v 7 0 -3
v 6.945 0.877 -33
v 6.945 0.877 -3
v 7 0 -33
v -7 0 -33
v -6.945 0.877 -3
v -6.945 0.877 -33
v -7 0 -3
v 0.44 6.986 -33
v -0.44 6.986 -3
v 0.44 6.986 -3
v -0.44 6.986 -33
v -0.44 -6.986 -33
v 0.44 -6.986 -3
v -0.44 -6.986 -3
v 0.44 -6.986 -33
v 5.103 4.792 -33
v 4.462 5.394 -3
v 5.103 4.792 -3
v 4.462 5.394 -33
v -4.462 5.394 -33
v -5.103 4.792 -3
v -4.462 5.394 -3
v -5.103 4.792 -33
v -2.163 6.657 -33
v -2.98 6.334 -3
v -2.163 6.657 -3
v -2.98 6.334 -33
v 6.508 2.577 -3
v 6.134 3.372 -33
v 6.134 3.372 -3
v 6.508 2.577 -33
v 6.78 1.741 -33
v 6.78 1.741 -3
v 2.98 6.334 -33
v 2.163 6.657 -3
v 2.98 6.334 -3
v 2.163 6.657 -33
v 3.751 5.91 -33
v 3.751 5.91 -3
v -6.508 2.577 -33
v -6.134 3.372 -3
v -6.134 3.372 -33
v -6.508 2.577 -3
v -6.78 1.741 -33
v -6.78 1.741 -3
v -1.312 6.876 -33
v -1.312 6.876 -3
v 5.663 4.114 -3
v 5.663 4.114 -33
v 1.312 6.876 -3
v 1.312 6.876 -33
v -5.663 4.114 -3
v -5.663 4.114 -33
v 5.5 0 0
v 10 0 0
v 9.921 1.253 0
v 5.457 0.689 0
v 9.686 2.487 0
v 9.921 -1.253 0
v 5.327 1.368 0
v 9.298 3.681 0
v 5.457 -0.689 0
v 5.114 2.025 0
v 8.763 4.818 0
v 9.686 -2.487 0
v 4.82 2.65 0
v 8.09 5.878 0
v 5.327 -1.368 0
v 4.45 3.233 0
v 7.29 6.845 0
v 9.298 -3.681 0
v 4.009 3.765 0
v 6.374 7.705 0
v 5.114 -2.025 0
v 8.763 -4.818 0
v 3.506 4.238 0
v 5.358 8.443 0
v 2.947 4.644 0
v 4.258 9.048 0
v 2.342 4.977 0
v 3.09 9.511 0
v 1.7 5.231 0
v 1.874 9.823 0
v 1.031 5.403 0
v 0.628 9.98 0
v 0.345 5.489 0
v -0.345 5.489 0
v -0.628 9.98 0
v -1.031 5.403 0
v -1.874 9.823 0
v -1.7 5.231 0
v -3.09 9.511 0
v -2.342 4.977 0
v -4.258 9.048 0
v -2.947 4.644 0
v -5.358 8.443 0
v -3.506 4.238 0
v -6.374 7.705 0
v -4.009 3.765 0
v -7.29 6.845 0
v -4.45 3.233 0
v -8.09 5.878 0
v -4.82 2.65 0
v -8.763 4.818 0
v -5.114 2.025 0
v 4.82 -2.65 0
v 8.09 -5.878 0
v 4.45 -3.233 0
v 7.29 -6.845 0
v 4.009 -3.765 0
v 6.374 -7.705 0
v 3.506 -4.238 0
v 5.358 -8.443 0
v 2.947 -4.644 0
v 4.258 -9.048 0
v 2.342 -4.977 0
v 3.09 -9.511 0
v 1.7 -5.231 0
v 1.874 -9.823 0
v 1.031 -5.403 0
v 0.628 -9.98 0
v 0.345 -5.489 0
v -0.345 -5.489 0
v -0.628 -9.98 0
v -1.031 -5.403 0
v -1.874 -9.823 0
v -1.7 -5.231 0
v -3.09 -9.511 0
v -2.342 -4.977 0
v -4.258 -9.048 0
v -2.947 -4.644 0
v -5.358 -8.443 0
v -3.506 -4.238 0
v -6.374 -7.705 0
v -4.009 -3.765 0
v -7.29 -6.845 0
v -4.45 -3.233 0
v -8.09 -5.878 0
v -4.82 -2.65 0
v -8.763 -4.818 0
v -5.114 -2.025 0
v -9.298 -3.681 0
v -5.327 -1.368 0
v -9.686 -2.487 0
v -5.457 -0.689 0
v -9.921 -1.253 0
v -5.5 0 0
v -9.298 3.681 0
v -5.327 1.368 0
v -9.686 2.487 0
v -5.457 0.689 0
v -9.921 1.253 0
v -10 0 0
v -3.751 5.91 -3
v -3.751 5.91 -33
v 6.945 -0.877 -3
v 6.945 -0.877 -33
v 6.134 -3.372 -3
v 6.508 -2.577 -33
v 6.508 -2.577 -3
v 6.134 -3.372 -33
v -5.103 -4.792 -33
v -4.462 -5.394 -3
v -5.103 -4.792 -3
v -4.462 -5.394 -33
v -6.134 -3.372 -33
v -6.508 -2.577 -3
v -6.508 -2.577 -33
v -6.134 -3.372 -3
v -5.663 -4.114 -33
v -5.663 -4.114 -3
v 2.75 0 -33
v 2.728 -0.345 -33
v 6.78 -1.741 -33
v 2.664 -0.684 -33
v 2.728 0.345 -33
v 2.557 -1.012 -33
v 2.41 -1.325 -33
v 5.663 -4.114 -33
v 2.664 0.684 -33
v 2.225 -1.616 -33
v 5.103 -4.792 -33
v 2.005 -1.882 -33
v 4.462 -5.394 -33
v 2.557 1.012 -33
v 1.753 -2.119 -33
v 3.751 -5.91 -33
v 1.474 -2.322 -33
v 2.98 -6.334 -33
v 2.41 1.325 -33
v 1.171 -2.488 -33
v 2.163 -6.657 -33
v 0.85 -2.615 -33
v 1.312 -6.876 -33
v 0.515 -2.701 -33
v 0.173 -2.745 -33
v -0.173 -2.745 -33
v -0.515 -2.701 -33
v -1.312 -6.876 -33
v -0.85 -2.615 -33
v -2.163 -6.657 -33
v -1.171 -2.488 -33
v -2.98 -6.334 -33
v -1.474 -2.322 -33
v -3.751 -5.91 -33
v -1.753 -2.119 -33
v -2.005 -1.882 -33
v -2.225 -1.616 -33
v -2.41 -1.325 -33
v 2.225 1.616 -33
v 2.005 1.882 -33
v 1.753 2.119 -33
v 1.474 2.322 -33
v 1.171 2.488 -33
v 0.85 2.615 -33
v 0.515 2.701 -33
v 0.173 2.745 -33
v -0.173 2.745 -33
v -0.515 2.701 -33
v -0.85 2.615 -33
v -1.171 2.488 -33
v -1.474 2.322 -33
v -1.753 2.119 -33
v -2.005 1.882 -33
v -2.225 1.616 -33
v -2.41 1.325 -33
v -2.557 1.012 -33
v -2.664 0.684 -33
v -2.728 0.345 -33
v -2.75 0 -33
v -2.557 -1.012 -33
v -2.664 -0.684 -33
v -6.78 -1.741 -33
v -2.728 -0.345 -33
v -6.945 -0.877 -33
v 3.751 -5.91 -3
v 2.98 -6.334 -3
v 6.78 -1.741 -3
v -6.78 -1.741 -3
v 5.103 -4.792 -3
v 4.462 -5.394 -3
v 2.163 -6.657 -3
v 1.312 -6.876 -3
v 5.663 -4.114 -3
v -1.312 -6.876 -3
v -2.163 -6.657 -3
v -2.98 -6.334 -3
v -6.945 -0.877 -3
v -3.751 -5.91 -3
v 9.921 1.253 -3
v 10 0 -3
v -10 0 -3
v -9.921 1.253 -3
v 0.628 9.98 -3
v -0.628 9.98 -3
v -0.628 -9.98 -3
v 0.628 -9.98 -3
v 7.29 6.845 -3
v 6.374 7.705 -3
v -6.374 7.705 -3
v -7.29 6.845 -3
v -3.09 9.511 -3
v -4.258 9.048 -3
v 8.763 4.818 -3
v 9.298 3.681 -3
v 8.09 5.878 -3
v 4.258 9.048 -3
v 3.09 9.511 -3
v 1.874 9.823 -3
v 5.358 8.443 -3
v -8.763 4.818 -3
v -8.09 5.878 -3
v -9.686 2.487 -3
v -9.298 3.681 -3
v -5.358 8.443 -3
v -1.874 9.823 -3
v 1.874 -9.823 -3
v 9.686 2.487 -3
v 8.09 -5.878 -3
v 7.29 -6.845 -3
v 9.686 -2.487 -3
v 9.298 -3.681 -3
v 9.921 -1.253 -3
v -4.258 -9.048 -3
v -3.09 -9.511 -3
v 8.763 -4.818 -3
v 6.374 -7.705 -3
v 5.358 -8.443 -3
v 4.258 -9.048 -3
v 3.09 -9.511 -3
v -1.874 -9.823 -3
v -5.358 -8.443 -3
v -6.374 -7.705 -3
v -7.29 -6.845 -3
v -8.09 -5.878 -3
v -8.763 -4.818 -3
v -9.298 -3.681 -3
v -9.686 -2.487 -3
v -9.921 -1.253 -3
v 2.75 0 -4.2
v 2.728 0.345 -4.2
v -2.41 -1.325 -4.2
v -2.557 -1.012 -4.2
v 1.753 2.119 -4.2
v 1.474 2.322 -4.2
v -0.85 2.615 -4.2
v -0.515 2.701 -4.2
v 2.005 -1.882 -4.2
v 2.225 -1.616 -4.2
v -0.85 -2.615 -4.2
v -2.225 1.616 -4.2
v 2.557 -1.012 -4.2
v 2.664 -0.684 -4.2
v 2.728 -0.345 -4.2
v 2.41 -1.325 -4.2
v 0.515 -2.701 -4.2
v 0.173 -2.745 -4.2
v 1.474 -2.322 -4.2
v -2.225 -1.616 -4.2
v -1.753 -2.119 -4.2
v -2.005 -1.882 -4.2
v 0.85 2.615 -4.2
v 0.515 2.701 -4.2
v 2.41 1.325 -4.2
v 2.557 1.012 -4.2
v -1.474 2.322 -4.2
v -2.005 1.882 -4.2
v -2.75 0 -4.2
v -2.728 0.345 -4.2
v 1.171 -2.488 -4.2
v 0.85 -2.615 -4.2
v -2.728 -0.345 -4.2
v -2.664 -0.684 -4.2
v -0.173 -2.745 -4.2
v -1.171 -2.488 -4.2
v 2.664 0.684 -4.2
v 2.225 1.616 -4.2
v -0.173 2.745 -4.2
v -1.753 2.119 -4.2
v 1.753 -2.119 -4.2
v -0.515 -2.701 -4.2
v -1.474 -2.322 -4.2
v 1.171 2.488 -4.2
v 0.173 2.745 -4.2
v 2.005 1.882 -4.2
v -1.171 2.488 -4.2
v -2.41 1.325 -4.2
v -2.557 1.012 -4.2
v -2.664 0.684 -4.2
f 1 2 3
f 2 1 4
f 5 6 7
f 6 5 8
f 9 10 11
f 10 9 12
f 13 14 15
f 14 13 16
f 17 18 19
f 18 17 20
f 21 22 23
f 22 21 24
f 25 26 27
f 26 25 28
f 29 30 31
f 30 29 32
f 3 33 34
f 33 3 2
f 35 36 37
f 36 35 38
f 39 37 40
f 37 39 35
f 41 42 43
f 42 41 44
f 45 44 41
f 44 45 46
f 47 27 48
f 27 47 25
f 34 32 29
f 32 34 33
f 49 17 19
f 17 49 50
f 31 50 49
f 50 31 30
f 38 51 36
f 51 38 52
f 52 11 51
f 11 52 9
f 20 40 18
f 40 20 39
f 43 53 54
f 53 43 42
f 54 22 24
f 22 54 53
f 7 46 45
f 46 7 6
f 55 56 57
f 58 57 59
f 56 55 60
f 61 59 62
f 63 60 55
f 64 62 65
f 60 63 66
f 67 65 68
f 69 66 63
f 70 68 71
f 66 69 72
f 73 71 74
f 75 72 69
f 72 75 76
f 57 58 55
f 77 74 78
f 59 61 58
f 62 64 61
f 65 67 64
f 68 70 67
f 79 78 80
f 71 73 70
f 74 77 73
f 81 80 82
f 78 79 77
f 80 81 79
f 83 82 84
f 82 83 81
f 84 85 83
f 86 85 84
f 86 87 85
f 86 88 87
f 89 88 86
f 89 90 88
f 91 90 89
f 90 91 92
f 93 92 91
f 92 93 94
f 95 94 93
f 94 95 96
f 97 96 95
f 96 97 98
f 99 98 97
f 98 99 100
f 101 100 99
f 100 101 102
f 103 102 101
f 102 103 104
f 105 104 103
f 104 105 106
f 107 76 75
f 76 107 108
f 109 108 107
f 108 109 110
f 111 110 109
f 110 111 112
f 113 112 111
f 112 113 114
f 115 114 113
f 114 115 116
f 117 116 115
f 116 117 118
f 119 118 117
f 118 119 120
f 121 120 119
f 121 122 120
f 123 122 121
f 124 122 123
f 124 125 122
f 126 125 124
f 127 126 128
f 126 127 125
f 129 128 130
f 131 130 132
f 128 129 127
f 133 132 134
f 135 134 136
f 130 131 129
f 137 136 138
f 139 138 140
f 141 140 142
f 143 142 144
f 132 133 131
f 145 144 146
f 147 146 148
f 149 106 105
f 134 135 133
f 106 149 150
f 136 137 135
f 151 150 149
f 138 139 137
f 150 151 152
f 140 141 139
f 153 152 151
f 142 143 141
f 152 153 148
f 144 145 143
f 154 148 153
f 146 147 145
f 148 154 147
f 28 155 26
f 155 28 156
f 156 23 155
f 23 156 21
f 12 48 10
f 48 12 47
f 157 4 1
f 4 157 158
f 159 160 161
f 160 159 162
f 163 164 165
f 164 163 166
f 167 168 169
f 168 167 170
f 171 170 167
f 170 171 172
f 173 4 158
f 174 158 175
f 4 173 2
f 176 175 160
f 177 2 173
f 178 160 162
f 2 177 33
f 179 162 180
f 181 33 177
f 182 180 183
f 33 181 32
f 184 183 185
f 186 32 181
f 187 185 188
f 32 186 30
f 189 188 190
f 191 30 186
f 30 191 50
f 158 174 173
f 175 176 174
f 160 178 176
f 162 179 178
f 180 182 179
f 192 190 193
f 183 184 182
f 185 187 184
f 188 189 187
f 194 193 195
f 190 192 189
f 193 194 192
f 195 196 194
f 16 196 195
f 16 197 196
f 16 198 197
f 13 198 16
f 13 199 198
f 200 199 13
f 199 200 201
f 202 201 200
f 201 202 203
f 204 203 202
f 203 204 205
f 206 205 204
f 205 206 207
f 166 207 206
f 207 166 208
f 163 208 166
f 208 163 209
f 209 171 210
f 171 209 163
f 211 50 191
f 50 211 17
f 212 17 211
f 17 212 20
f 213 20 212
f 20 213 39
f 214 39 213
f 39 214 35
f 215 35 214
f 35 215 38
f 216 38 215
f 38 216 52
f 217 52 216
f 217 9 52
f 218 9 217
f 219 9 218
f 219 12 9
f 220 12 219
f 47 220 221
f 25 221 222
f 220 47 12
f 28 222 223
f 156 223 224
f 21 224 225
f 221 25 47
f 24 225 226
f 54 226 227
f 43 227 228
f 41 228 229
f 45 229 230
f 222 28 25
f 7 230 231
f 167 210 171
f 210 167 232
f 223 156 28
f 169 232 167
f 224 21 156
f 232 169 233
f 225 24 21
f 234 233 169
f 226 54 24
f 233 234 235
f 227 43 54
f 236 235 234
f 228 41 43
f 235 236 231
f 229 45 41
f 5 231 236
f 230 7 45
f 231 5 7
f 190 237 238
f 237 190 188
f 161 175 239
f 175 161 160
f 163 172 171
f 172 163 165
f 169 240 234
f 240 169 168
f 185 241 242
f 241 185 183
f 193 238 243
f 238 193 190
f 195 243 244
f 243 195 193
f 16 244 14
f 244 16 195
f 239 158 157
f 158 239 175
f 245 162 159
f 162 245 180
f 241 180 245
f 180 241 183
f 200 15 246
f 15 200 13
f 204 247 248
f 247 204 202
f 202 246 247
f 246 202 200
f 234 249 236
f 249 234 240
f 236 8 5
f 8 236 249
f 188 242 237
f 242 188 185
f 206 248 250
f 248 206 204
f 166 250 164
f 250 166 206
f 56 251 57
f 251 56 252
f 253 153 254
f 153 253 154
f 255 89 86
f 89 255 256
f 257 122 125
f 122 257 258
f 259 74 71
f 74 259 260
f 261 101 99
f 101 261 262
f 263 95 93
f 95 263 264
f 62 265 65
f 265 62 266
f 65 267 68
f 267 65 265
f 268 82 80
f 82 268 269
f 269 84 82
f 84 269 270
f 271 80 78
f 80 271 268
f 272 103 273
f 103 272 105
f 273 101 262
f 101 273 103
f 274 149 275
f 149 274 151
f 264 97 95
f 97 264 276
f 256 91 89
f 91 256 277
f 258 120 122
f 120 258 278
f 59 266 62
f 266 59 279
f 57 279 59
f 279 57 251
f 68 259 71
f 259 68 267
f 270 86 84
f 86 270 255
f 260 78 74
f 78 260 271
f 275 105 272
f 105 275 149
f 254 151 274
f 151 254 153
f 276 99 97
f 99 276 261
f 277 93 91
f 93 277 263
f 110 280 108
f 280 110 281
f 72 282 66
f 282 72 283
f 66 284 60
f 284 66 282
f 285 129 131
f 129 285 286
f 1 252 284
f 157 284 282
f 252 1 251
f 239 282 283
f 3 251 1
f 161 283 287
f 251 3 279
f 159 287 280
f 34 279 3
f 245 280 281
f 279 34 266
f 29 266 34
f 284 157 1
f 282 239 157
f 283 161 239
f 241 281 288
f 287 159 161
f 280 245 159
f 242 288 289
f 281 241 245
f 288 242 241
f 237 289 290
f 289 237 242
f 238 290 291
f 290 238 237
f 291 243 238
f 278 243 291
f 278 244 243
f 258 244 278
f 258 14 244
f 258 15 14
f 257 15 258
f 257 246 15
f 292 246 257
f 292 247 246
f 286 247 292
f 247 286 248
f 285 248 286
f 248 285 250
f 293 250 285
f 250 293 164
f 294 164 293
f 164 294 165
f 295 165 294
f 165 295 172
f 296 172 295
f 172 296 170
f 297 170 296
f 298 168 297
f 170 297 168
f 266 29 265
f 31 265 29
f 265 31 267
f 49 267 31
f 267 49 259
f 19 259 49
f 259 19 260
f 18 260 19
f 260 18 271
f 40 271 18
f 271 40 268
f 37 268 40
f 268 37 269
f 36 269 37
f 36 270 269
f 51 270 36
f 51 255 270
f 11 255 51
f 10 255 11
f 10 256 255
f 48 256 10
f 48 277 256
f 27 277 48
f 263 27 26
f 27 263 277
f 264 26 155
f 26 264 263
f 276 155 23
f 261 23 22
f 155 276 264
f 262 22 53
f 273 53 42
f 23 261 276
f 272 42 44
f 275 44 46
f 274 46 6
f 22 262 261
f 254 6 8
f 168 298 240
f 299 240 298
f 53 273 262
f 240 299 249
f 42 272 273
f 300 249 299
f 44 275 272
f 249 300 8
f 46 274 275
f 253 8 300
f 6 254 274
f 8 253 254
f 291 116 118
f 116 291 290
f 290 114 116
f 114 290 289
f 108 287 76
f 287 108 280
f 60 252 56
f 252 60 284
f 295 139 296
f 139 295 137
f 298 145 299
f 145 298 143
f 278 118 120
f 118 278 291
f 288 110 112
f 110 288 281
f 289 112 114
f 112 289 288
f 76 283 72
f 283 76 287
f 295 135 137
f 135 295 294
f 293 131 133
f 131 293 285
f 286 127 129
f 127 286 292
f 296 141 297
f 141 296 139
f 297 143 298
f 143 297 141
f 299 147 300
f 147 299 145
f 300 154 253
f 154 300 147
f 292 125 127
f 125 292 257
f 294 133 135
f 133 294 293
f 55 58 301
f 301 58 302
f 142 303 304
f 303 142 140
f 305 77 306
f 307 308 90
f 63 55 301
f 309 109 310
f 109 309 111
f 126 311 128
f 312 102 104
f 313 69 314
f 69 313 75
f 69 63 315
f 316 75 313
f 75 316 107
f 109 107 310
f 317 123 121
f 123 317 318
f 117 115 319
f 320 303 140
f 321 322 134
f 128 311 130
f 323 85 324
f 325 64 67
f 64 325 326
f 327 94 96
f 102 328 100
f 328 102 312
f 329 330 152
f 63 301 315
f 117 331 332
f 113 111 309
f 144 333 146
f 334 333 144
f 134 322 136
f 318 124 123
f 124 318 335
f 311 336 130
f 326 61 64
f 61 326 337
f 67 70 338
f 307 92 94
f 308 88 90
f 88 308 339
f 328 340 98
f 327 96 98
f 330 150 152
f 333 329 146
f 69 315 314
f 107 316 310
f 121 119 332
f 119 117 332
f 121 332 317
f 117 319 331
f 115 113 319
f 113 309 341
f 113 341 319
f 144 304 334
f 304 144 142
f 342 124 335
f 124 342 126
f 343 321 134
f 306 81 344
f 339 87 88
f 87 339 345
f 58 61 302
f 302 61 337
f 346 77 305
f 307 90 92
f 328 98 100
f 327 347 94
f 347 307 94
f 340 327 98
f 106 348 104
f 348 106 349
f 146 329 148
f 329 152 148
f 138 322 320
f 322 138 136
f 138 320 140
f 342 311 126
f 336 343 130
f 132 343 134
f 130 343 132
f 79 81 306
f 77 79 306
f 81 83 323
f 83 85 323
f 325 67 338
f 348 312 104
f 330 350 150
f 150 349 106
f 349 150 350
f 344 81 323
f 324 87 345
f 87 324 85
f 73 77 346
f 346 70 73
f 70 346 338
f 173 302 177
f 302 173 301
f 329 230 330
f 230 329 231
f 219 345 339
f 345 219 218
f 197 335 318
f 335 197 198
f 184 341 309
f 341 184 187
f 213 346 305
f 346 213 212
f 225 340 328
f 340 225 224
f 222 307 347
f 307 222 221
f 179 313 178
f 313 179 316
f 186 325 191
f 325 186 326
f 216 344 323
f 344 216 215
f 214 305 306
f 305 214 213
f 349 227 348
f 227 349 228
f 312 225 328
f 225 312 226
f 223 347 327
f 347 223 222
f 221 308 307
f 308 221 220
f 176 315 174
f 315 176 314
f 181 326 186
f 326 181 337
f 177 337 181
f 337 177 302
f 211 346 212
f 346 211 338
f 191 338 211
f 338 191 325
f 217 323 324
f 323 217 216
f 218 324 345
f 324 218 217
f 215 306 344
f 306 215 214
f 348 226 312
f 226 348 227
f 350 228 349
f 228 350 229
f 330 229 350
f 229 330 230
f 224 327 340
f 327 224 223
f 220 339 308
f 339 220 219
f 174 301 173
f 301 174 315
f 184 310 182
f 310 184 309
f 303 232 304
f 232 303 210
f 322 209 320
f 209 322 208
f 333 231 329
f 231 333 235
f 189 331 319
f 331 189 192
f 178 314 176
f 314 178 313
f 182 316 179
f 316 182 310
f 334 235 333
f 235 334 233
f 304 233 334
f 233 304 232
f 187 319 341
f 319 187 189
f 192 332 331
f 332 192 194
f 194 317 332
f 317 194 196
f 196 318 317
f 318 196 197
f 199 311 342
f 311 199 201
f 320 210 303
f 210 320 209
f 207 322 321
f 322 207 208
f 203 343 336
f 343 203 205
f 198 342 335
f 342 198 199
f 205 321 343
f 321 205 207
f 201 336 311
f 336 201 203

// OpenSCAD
$fn = 50;


difference() {
	union() {
		translate(v = [0, 0, -33.0000000000]) {
			cylinder(h = 33, r = 7.0000000000);
		}
		translate(v = [0, 0, -3.0000000000]) {
			cylinder(h = 3, r = 10.0000000000);
		}
	}
	union() {
		translate(v = [0, 0, 0]) {
			rotate(a = [0, 0, 0]) {
				difference() {
					union() {
						#translate(v = [0, 0, -33.0000000000]) {
							cylinder(h = 33, r = 2.2500000000);
						}
						#translate(v = [0, 0, -4.2000000000]) {
							cylinder(h = 4.2000000000, r = 7.0000000000, r1 = 2.7500000000, r2 = 5.5000000000);
						}
						#translate(v = [0, 0, -33.0000000000]) {
							cylinder(h = 33, r = 2.7500000000);
						}
						#translate(v = [0, 0, -33.0000000000]) {
							cylinder(h = 33, r = 2.2500000000);
						}
					}
					union();
				}
			}
		}
	}
}
